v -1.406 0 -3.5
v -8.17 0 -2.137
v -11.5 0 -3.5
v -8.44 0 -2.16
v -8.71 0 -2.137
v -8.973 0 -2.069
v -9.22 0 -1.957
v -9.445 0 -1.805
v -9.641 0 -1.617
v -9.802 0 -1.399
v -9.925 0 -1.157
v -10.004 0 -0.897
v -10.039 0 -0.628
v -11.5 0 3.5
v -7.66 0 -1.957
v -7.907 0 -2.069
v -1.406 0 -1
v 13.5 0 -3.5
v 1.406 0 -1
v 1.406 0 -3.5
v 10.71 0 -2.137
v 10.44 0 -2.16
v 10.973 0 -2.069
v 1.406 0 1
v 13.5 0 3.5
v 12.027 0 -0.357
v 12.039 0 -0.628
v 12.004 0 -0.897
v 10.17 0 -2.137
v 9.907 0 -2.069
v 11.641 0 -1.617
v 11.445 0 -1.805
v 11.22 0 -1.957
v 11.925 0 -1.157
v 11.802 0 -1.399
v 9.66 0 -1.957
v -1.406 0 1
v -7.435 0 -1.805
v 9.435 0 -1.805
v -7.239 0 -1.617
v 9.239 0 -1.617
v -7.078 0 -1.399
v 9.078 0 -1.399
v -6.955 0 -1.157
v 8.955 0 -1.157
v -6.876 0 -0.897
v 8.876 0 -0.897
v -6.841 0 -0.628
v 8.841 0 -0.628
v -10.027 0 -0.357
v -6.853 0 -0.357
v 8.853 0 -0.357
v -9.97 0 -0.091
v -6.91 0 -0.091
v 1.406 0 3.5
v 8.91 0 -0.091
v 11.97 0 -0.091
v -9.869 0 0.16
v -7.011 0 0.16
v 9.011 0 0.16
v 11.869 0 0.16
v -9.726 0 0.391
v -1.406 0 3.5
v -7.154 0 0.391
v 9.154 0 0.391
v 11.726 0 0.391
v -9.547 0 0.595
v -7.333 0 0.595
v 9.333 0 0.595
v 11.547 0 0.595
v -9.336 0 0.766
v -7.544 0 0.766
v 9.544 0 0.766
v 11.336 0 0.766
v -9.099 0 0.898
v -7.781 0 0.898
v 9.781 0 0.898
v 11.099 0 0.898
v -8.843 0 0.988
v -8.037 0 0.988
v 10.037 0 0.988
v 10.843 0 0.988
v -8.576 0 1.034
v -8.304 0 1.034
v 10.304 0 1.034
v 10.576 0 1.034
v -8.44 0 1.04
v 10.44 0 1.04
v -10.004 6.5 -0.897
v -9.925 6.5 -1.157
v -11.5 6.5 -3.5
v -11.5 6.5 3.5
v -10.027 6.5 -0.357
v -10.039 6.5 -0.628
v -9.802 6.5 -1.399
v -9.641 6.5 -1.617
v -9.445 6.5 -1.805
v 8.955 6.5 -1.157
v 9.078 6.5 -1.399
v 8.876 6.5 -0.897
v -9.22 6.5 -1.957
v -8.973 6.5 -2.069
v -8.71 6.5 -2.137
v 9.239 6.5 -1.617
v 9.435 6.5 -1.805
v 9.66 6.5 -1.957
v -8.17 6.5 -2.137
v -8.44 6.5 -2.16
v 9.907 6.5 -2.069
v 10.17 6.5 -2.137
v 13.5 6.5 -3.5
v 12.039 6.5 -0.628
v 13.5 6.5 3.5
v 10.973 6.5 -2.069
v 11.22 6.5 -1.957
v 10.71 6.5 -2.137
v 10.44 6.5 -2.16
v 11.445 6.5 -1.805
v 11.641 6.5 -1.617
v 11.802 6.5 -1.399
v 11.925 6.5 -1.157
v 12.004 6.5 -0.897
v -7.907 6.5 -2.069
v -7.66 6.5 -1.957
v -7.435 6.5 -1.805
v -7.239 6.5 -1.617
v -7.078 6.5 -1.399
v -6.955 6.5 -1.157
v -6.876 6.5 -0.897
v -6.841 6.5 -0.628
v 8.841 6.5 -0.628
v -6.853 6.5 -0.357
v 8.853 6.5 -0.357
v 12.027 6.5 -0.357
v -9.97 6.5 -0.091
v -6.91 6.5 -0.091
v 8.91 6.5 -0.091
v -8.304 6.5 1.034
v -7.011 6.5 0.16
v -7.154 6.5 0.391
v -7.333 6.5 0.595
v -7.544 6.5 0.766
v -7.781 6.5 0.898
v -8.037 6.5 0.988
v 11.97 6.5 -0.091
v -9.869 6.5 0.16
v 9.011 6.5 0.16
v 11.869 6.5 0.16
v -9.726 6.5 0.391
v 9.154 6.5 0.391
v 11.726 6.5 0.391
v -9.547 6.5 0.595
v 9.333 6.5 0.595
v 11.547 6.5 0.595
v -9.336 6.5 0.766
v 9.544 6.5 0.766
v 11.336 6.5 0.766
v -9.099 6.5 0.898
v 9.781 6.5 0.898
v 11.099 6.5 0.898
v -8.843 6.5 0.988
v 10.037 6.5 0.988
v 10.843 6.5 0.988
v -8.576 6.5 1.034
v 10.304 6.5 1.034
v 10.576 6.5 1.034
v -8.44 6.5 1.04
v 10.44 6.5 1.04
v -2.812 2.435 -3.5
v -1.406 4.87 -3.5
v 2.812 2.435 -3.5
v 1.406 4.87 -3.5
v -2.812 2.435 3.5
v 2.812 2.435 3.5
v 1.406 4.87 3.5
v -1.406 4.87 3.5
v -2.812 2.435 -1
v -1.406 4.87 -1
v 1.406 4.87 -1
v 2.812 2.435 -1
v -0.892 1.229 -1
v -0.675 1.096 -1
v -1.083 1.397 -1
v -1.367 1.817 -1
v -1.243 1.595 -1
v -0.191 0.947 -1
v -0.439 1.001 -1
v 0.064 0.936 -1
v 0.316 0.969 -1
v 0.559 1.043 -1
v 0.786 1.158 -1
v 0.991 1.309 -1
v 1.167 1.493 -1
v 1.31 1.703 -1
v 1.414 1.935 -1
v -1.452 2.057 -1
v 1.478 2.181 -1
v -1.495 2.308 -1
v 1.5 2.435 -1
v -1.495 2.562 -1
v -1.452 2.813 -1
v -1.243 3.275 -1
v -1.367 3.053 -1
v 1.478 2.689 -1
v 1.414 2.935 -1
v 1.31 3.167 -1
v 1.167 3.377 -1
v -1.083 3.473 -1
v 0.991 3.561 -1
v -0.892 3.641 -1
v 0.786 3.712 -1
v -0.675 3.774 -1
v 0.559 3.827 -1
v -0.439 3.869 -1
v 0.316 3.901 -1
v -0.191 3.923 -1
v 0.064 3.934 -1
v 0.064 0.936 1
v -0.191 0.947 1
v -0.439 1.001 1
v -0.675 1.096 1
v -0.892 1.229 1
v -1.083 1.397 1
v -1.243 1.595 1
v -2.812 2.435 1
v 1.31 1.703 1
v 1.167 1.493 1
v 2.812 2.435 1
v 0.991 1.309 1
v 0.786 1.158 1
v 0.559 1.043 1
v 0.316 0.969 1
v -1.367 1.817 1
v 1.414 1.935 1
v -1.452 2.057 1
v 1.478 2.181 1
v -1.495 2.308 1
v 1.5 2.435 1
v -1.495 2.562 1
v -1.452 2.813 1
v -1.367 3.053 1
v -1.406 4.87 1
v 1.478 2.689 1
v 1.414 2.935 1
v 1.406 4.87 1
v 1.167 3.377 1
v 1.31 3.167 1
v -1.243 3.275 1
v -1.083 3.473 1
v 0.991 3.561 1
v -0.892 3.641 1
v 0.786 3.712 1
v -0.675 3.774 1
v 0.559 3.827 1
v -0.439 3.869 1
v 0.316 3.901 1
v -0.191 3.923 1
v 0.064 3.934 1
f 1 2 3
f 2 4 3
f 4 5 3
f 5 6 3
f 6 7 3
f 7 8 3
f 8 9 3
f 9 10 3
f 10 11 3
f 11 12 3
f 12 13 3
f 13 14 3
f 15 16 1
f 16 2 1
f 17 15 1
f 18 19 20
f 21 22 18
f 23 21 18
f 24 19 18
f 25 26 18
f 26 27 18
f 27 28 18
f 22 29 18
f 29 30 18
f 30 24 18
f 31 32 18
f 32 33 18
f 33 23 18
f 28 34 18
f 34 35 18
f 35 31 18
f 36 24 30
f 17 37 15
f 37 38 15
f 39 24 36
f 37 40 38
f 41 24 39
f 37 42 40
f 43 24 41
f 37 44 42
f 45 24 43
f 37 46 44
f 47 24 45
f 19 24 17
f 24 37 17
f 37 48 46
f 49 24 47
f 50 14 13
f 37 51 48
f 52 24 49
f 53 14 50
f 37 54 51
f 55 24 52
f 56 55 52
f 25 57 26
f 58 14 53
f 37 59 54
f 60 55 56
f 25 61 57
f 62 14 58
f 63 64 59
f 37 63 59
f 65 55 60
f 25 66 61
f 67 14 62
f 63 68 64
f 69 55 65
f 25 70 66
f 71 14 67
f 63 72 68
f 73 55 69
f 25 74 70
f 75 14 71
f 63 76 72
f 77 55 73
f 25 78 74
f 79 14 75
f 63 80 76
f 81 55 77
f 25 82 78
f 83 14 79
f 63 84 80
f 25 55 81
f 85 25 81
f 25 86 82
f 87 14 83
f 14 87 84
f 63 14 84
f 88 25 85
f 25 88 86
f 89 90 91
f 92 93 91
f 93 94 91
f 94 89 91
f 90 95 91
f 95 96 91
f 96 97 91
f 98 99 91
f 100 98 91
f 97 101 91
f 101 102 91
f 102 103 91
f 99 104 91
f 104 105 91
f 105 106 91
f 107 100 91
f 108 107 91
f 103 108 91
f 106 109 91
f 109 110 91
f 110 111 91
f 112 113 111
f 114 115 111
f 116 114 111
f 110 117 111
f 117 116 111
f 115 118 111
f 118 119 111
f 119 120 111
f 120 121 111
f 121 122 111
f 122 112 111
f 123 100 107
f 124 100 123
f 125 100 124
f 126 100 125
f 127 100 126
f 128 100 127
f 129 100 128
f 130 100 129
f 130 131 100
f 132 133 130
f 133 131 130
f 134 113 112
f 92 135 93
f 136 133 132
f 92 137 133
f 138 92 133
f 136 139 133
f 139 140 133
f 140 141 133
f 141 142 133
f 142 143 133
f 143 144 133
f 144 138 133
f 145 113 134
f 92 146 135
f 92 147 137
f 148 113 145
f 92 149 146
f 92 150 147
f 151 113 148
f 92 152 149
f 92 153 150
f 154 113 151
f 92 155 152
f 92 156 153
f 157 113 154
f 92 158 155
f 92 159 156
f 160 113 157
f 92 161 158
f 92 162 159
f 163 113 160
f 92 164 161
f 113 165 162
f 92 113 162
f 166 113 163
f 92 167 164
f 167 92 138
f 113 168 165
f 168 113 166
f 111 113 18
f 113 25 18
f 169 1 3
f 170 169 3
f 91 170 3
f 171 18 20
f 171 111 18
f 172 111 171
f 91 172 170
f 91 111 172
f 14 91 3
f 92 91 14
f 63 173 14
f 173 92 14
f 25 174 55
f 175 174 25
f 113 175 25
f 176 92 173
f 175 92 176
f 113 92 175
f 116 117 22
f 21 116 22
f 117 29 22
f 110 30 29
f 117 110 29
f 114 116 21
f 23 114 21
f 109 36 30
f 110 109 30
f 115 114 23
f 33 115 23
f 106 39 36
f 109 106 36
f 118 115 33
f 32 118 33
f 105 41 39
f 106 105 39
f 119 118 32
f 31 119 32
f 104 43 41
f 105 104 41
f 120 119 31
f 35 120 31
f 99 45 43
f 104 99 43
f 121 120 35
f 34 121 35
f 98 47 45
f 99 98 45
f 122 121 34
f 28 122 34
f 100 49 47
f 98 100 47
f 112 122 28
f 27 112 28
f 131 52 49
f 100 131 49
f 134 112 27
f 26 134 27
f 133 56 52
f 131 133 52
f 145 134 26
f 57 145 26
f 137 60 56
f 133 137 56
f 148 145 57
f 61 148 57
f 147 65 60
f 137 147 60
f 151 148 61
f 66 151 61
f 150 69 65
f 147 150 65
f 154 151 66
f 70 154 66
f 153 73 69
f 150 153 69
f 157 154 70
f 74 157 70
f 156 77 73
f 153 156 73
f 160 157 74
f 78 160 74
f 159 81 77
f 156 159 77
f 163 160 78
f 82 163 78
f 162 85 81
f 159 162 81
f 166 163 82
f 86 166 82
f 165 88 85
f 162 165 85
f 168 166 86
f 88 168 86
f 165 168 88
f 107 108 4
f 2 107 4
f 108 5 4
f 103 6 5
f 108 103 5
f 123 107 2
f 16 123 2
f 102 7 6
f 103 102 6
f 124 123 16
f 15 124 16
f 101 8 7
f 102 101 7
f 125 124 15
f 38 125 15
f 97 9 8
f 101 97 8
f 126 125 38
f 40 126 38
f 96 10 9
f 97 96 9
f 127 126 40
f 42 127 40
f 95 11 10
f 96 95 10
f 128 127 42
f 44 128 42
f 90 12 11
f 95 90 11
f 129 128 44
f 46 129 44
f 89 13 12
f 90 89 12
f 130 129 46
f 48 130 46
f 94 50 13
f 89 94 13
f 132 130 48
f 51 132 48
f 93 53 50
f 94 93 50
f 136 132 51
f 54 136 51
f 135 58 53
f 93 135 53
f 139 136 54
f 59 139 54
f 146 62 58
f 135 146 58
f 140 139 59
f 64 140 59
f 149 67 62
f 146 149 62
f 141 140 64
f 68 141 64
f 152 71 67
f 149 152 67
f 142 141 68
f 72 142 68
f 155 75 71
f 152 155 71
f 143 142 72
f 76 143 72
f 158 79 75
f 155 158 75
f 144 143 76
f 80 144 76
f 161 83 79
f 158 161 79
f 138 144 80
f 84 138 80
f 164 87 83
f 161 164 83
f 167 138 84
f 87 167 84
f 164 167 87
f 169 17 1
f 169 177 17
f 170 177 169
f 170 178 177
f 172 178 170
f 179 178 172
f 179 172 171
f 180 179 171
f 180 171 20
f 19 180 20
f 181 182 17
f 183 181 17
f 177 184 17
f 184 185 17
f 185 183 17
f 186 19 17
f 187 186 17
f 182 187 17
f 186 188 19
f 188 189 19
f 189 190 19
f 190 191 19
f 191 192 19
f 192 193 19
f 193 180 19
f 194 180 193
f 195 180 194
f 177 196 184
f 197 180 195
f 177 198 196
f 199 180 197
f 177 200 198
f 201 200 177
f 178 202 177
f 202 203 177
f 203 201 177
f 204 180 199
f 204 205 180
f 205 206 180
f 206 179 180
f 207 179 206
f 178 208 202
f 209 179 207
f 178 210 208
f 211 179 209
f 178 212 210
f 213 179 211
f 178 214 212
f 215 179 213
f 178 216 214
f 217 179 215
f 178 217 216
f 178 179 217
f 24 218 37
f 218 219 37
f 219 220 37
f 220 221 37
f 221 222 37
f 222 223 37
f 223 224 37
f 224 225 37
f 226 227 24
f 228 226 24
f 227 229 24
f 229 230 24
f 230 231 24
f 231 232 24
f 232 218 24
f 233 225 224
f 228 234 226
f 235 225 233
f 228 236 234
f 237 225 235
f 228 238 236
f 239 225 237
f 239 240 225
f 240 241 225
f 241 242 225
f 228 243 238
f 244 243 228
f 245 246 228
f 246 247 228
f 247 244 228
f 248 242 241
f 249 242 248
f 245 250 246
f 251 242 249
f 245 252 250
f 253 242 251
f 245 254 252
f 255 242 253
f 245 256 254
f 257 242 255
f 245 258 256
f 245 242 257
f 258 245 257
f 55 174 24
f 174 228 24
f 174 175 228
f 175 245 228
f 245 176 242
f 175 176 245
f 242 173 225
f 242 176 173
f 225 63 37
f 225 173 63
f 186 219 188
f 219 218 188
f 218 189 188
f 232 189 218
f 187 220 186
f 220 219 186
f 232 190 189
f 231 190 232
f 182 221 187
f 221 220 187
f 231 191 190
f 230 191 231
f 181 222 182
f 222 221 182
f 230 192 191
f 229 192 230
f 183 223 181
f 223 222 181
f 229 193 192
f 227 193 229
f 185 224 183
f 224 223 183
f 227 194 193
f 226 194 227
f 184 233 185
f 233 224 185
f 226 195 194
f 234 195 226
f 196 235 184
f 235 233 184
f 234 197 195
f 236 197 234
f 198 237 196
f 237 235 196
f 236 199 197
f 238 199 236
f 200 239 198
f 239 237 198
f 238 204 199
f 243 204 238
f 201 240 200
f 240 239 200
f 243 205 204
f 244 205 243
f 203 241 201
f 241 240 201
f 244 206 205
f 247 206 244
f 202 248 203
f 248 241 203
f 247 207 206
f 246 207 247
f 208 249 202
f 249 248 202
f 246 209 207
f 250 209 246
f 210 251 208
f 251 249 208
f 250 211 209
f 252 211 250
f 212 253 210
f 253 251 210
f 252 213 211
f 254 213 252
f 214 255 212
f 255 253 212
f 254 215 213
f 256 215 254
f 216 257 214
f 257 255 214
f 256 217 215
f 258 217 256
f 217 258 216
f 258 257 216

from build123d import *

# Parameters (mm, degrees)
SKETCH1_W               = 25
SKETCH1_H               = 7
SKETCH1_R               = 1.6
BOSS_EXTRUDE1_DEPTH     = 6.5
CUT_EXTRUDE1_START      = -1
SKETCH3_R               = 1.5
CUT_EXTRUDE1_DEPTH      = 15.386682553
CUT_EXTRUDE2_START      = 1
CUT_EXTRUDE2_OUTLINE_R  = 1.5
CUT_EXTRUDE2_DEPTH      = 2.5
CUT_EXTRUDE3_DEPTH      = 16.386682553
CUT_EXTRUDE3_DEPTH_BACK = 16.386682553
SKETCH3_3_R             = 1.5


# Read off the part's stored shape, not the designer's step: Cut-Extrude2
with BuildPart() as part:
    # Sketch1 → Boss-Extrude1 (new body)
    with BuildSketch(Plane(origin=(0, 0, 0), x_dir=(1, 0, 0), z_dir=(0, 1, 0))):
        with Locations((1, 0)):
            Rectangle(SKETCH1_W, SKETCH1_H)
        with Locations(Location((10.44, 0.56, 0), (0, 0, 90))):
            Circle(SKETCH1_R, mode=Mode.SUBTRACT)
        with Locations(Location((-8.44, 0.56, 0), (0, 0, 90))):
            Circle(SKETCH1_R, mode=Mode.SUBTRACT)
    extrude(amount=BOSS_EXTRUDE1_DEPTH)

    # Sketch3 → Cut-Extrude1 (cut, through all)
    with BuildSketch(Plane.XY.offset(CUT_EXTRUDE1_START)):
        Polygon((1.405847905, 0), (2.811695811, 2.435), (1.405847905, 4.87), (-1.405847905, 4.87), (-2.811695811, 2.435), (-1.405847905, 0), align=None)
        with Locations((0, 2.435)):
            Circle(SKETCH3_R, mode=Mode.SUBTRACT)
    extrude(amount=-CUT_EXTRUDE1_DEPTH, mode=Mode.SUBTRACT)

    # Cut-Extrude2 outline → Cut-Extrude2 (cut)
    with BuildSketch(Plane.XY.offset(CUT_EXTRUDE2_START)):
        Polygon((-2.811695811, 2.435), (-1.405847905, 0), (1.405847905, 0), (2.811695811, 2.435), (1.405847905, 4.87), (-1.405847905, 4.87), align=None)
        with Locations((0, 2.435)):
            Circle(CUT_EXTRUDE2_OUTLINE_R, mode=Mode.SUBTRACT)
    extrude(amount=CUT_EXTRUDE2_DEPTH, mode=Mode.SUBTRACT)

    # Sketch3<3> → Cut-Extrude3 (cut, two sides: drawn at the far end of the back side and taken through both)
    with BuildSketch(Plane.XY.offset(-CUT_EXTRUDE3_DEPTH_BACK)):
        with Locations((0, 2.435)):
            Circle(SKETCH3_3_R)
    extrude(amount=CUT_EXTRUDE3_DEPTH + CUT_EXTRUDE3_DEPTH_BACK, mode=Mode.SUBTRACT)


solid = part.part
